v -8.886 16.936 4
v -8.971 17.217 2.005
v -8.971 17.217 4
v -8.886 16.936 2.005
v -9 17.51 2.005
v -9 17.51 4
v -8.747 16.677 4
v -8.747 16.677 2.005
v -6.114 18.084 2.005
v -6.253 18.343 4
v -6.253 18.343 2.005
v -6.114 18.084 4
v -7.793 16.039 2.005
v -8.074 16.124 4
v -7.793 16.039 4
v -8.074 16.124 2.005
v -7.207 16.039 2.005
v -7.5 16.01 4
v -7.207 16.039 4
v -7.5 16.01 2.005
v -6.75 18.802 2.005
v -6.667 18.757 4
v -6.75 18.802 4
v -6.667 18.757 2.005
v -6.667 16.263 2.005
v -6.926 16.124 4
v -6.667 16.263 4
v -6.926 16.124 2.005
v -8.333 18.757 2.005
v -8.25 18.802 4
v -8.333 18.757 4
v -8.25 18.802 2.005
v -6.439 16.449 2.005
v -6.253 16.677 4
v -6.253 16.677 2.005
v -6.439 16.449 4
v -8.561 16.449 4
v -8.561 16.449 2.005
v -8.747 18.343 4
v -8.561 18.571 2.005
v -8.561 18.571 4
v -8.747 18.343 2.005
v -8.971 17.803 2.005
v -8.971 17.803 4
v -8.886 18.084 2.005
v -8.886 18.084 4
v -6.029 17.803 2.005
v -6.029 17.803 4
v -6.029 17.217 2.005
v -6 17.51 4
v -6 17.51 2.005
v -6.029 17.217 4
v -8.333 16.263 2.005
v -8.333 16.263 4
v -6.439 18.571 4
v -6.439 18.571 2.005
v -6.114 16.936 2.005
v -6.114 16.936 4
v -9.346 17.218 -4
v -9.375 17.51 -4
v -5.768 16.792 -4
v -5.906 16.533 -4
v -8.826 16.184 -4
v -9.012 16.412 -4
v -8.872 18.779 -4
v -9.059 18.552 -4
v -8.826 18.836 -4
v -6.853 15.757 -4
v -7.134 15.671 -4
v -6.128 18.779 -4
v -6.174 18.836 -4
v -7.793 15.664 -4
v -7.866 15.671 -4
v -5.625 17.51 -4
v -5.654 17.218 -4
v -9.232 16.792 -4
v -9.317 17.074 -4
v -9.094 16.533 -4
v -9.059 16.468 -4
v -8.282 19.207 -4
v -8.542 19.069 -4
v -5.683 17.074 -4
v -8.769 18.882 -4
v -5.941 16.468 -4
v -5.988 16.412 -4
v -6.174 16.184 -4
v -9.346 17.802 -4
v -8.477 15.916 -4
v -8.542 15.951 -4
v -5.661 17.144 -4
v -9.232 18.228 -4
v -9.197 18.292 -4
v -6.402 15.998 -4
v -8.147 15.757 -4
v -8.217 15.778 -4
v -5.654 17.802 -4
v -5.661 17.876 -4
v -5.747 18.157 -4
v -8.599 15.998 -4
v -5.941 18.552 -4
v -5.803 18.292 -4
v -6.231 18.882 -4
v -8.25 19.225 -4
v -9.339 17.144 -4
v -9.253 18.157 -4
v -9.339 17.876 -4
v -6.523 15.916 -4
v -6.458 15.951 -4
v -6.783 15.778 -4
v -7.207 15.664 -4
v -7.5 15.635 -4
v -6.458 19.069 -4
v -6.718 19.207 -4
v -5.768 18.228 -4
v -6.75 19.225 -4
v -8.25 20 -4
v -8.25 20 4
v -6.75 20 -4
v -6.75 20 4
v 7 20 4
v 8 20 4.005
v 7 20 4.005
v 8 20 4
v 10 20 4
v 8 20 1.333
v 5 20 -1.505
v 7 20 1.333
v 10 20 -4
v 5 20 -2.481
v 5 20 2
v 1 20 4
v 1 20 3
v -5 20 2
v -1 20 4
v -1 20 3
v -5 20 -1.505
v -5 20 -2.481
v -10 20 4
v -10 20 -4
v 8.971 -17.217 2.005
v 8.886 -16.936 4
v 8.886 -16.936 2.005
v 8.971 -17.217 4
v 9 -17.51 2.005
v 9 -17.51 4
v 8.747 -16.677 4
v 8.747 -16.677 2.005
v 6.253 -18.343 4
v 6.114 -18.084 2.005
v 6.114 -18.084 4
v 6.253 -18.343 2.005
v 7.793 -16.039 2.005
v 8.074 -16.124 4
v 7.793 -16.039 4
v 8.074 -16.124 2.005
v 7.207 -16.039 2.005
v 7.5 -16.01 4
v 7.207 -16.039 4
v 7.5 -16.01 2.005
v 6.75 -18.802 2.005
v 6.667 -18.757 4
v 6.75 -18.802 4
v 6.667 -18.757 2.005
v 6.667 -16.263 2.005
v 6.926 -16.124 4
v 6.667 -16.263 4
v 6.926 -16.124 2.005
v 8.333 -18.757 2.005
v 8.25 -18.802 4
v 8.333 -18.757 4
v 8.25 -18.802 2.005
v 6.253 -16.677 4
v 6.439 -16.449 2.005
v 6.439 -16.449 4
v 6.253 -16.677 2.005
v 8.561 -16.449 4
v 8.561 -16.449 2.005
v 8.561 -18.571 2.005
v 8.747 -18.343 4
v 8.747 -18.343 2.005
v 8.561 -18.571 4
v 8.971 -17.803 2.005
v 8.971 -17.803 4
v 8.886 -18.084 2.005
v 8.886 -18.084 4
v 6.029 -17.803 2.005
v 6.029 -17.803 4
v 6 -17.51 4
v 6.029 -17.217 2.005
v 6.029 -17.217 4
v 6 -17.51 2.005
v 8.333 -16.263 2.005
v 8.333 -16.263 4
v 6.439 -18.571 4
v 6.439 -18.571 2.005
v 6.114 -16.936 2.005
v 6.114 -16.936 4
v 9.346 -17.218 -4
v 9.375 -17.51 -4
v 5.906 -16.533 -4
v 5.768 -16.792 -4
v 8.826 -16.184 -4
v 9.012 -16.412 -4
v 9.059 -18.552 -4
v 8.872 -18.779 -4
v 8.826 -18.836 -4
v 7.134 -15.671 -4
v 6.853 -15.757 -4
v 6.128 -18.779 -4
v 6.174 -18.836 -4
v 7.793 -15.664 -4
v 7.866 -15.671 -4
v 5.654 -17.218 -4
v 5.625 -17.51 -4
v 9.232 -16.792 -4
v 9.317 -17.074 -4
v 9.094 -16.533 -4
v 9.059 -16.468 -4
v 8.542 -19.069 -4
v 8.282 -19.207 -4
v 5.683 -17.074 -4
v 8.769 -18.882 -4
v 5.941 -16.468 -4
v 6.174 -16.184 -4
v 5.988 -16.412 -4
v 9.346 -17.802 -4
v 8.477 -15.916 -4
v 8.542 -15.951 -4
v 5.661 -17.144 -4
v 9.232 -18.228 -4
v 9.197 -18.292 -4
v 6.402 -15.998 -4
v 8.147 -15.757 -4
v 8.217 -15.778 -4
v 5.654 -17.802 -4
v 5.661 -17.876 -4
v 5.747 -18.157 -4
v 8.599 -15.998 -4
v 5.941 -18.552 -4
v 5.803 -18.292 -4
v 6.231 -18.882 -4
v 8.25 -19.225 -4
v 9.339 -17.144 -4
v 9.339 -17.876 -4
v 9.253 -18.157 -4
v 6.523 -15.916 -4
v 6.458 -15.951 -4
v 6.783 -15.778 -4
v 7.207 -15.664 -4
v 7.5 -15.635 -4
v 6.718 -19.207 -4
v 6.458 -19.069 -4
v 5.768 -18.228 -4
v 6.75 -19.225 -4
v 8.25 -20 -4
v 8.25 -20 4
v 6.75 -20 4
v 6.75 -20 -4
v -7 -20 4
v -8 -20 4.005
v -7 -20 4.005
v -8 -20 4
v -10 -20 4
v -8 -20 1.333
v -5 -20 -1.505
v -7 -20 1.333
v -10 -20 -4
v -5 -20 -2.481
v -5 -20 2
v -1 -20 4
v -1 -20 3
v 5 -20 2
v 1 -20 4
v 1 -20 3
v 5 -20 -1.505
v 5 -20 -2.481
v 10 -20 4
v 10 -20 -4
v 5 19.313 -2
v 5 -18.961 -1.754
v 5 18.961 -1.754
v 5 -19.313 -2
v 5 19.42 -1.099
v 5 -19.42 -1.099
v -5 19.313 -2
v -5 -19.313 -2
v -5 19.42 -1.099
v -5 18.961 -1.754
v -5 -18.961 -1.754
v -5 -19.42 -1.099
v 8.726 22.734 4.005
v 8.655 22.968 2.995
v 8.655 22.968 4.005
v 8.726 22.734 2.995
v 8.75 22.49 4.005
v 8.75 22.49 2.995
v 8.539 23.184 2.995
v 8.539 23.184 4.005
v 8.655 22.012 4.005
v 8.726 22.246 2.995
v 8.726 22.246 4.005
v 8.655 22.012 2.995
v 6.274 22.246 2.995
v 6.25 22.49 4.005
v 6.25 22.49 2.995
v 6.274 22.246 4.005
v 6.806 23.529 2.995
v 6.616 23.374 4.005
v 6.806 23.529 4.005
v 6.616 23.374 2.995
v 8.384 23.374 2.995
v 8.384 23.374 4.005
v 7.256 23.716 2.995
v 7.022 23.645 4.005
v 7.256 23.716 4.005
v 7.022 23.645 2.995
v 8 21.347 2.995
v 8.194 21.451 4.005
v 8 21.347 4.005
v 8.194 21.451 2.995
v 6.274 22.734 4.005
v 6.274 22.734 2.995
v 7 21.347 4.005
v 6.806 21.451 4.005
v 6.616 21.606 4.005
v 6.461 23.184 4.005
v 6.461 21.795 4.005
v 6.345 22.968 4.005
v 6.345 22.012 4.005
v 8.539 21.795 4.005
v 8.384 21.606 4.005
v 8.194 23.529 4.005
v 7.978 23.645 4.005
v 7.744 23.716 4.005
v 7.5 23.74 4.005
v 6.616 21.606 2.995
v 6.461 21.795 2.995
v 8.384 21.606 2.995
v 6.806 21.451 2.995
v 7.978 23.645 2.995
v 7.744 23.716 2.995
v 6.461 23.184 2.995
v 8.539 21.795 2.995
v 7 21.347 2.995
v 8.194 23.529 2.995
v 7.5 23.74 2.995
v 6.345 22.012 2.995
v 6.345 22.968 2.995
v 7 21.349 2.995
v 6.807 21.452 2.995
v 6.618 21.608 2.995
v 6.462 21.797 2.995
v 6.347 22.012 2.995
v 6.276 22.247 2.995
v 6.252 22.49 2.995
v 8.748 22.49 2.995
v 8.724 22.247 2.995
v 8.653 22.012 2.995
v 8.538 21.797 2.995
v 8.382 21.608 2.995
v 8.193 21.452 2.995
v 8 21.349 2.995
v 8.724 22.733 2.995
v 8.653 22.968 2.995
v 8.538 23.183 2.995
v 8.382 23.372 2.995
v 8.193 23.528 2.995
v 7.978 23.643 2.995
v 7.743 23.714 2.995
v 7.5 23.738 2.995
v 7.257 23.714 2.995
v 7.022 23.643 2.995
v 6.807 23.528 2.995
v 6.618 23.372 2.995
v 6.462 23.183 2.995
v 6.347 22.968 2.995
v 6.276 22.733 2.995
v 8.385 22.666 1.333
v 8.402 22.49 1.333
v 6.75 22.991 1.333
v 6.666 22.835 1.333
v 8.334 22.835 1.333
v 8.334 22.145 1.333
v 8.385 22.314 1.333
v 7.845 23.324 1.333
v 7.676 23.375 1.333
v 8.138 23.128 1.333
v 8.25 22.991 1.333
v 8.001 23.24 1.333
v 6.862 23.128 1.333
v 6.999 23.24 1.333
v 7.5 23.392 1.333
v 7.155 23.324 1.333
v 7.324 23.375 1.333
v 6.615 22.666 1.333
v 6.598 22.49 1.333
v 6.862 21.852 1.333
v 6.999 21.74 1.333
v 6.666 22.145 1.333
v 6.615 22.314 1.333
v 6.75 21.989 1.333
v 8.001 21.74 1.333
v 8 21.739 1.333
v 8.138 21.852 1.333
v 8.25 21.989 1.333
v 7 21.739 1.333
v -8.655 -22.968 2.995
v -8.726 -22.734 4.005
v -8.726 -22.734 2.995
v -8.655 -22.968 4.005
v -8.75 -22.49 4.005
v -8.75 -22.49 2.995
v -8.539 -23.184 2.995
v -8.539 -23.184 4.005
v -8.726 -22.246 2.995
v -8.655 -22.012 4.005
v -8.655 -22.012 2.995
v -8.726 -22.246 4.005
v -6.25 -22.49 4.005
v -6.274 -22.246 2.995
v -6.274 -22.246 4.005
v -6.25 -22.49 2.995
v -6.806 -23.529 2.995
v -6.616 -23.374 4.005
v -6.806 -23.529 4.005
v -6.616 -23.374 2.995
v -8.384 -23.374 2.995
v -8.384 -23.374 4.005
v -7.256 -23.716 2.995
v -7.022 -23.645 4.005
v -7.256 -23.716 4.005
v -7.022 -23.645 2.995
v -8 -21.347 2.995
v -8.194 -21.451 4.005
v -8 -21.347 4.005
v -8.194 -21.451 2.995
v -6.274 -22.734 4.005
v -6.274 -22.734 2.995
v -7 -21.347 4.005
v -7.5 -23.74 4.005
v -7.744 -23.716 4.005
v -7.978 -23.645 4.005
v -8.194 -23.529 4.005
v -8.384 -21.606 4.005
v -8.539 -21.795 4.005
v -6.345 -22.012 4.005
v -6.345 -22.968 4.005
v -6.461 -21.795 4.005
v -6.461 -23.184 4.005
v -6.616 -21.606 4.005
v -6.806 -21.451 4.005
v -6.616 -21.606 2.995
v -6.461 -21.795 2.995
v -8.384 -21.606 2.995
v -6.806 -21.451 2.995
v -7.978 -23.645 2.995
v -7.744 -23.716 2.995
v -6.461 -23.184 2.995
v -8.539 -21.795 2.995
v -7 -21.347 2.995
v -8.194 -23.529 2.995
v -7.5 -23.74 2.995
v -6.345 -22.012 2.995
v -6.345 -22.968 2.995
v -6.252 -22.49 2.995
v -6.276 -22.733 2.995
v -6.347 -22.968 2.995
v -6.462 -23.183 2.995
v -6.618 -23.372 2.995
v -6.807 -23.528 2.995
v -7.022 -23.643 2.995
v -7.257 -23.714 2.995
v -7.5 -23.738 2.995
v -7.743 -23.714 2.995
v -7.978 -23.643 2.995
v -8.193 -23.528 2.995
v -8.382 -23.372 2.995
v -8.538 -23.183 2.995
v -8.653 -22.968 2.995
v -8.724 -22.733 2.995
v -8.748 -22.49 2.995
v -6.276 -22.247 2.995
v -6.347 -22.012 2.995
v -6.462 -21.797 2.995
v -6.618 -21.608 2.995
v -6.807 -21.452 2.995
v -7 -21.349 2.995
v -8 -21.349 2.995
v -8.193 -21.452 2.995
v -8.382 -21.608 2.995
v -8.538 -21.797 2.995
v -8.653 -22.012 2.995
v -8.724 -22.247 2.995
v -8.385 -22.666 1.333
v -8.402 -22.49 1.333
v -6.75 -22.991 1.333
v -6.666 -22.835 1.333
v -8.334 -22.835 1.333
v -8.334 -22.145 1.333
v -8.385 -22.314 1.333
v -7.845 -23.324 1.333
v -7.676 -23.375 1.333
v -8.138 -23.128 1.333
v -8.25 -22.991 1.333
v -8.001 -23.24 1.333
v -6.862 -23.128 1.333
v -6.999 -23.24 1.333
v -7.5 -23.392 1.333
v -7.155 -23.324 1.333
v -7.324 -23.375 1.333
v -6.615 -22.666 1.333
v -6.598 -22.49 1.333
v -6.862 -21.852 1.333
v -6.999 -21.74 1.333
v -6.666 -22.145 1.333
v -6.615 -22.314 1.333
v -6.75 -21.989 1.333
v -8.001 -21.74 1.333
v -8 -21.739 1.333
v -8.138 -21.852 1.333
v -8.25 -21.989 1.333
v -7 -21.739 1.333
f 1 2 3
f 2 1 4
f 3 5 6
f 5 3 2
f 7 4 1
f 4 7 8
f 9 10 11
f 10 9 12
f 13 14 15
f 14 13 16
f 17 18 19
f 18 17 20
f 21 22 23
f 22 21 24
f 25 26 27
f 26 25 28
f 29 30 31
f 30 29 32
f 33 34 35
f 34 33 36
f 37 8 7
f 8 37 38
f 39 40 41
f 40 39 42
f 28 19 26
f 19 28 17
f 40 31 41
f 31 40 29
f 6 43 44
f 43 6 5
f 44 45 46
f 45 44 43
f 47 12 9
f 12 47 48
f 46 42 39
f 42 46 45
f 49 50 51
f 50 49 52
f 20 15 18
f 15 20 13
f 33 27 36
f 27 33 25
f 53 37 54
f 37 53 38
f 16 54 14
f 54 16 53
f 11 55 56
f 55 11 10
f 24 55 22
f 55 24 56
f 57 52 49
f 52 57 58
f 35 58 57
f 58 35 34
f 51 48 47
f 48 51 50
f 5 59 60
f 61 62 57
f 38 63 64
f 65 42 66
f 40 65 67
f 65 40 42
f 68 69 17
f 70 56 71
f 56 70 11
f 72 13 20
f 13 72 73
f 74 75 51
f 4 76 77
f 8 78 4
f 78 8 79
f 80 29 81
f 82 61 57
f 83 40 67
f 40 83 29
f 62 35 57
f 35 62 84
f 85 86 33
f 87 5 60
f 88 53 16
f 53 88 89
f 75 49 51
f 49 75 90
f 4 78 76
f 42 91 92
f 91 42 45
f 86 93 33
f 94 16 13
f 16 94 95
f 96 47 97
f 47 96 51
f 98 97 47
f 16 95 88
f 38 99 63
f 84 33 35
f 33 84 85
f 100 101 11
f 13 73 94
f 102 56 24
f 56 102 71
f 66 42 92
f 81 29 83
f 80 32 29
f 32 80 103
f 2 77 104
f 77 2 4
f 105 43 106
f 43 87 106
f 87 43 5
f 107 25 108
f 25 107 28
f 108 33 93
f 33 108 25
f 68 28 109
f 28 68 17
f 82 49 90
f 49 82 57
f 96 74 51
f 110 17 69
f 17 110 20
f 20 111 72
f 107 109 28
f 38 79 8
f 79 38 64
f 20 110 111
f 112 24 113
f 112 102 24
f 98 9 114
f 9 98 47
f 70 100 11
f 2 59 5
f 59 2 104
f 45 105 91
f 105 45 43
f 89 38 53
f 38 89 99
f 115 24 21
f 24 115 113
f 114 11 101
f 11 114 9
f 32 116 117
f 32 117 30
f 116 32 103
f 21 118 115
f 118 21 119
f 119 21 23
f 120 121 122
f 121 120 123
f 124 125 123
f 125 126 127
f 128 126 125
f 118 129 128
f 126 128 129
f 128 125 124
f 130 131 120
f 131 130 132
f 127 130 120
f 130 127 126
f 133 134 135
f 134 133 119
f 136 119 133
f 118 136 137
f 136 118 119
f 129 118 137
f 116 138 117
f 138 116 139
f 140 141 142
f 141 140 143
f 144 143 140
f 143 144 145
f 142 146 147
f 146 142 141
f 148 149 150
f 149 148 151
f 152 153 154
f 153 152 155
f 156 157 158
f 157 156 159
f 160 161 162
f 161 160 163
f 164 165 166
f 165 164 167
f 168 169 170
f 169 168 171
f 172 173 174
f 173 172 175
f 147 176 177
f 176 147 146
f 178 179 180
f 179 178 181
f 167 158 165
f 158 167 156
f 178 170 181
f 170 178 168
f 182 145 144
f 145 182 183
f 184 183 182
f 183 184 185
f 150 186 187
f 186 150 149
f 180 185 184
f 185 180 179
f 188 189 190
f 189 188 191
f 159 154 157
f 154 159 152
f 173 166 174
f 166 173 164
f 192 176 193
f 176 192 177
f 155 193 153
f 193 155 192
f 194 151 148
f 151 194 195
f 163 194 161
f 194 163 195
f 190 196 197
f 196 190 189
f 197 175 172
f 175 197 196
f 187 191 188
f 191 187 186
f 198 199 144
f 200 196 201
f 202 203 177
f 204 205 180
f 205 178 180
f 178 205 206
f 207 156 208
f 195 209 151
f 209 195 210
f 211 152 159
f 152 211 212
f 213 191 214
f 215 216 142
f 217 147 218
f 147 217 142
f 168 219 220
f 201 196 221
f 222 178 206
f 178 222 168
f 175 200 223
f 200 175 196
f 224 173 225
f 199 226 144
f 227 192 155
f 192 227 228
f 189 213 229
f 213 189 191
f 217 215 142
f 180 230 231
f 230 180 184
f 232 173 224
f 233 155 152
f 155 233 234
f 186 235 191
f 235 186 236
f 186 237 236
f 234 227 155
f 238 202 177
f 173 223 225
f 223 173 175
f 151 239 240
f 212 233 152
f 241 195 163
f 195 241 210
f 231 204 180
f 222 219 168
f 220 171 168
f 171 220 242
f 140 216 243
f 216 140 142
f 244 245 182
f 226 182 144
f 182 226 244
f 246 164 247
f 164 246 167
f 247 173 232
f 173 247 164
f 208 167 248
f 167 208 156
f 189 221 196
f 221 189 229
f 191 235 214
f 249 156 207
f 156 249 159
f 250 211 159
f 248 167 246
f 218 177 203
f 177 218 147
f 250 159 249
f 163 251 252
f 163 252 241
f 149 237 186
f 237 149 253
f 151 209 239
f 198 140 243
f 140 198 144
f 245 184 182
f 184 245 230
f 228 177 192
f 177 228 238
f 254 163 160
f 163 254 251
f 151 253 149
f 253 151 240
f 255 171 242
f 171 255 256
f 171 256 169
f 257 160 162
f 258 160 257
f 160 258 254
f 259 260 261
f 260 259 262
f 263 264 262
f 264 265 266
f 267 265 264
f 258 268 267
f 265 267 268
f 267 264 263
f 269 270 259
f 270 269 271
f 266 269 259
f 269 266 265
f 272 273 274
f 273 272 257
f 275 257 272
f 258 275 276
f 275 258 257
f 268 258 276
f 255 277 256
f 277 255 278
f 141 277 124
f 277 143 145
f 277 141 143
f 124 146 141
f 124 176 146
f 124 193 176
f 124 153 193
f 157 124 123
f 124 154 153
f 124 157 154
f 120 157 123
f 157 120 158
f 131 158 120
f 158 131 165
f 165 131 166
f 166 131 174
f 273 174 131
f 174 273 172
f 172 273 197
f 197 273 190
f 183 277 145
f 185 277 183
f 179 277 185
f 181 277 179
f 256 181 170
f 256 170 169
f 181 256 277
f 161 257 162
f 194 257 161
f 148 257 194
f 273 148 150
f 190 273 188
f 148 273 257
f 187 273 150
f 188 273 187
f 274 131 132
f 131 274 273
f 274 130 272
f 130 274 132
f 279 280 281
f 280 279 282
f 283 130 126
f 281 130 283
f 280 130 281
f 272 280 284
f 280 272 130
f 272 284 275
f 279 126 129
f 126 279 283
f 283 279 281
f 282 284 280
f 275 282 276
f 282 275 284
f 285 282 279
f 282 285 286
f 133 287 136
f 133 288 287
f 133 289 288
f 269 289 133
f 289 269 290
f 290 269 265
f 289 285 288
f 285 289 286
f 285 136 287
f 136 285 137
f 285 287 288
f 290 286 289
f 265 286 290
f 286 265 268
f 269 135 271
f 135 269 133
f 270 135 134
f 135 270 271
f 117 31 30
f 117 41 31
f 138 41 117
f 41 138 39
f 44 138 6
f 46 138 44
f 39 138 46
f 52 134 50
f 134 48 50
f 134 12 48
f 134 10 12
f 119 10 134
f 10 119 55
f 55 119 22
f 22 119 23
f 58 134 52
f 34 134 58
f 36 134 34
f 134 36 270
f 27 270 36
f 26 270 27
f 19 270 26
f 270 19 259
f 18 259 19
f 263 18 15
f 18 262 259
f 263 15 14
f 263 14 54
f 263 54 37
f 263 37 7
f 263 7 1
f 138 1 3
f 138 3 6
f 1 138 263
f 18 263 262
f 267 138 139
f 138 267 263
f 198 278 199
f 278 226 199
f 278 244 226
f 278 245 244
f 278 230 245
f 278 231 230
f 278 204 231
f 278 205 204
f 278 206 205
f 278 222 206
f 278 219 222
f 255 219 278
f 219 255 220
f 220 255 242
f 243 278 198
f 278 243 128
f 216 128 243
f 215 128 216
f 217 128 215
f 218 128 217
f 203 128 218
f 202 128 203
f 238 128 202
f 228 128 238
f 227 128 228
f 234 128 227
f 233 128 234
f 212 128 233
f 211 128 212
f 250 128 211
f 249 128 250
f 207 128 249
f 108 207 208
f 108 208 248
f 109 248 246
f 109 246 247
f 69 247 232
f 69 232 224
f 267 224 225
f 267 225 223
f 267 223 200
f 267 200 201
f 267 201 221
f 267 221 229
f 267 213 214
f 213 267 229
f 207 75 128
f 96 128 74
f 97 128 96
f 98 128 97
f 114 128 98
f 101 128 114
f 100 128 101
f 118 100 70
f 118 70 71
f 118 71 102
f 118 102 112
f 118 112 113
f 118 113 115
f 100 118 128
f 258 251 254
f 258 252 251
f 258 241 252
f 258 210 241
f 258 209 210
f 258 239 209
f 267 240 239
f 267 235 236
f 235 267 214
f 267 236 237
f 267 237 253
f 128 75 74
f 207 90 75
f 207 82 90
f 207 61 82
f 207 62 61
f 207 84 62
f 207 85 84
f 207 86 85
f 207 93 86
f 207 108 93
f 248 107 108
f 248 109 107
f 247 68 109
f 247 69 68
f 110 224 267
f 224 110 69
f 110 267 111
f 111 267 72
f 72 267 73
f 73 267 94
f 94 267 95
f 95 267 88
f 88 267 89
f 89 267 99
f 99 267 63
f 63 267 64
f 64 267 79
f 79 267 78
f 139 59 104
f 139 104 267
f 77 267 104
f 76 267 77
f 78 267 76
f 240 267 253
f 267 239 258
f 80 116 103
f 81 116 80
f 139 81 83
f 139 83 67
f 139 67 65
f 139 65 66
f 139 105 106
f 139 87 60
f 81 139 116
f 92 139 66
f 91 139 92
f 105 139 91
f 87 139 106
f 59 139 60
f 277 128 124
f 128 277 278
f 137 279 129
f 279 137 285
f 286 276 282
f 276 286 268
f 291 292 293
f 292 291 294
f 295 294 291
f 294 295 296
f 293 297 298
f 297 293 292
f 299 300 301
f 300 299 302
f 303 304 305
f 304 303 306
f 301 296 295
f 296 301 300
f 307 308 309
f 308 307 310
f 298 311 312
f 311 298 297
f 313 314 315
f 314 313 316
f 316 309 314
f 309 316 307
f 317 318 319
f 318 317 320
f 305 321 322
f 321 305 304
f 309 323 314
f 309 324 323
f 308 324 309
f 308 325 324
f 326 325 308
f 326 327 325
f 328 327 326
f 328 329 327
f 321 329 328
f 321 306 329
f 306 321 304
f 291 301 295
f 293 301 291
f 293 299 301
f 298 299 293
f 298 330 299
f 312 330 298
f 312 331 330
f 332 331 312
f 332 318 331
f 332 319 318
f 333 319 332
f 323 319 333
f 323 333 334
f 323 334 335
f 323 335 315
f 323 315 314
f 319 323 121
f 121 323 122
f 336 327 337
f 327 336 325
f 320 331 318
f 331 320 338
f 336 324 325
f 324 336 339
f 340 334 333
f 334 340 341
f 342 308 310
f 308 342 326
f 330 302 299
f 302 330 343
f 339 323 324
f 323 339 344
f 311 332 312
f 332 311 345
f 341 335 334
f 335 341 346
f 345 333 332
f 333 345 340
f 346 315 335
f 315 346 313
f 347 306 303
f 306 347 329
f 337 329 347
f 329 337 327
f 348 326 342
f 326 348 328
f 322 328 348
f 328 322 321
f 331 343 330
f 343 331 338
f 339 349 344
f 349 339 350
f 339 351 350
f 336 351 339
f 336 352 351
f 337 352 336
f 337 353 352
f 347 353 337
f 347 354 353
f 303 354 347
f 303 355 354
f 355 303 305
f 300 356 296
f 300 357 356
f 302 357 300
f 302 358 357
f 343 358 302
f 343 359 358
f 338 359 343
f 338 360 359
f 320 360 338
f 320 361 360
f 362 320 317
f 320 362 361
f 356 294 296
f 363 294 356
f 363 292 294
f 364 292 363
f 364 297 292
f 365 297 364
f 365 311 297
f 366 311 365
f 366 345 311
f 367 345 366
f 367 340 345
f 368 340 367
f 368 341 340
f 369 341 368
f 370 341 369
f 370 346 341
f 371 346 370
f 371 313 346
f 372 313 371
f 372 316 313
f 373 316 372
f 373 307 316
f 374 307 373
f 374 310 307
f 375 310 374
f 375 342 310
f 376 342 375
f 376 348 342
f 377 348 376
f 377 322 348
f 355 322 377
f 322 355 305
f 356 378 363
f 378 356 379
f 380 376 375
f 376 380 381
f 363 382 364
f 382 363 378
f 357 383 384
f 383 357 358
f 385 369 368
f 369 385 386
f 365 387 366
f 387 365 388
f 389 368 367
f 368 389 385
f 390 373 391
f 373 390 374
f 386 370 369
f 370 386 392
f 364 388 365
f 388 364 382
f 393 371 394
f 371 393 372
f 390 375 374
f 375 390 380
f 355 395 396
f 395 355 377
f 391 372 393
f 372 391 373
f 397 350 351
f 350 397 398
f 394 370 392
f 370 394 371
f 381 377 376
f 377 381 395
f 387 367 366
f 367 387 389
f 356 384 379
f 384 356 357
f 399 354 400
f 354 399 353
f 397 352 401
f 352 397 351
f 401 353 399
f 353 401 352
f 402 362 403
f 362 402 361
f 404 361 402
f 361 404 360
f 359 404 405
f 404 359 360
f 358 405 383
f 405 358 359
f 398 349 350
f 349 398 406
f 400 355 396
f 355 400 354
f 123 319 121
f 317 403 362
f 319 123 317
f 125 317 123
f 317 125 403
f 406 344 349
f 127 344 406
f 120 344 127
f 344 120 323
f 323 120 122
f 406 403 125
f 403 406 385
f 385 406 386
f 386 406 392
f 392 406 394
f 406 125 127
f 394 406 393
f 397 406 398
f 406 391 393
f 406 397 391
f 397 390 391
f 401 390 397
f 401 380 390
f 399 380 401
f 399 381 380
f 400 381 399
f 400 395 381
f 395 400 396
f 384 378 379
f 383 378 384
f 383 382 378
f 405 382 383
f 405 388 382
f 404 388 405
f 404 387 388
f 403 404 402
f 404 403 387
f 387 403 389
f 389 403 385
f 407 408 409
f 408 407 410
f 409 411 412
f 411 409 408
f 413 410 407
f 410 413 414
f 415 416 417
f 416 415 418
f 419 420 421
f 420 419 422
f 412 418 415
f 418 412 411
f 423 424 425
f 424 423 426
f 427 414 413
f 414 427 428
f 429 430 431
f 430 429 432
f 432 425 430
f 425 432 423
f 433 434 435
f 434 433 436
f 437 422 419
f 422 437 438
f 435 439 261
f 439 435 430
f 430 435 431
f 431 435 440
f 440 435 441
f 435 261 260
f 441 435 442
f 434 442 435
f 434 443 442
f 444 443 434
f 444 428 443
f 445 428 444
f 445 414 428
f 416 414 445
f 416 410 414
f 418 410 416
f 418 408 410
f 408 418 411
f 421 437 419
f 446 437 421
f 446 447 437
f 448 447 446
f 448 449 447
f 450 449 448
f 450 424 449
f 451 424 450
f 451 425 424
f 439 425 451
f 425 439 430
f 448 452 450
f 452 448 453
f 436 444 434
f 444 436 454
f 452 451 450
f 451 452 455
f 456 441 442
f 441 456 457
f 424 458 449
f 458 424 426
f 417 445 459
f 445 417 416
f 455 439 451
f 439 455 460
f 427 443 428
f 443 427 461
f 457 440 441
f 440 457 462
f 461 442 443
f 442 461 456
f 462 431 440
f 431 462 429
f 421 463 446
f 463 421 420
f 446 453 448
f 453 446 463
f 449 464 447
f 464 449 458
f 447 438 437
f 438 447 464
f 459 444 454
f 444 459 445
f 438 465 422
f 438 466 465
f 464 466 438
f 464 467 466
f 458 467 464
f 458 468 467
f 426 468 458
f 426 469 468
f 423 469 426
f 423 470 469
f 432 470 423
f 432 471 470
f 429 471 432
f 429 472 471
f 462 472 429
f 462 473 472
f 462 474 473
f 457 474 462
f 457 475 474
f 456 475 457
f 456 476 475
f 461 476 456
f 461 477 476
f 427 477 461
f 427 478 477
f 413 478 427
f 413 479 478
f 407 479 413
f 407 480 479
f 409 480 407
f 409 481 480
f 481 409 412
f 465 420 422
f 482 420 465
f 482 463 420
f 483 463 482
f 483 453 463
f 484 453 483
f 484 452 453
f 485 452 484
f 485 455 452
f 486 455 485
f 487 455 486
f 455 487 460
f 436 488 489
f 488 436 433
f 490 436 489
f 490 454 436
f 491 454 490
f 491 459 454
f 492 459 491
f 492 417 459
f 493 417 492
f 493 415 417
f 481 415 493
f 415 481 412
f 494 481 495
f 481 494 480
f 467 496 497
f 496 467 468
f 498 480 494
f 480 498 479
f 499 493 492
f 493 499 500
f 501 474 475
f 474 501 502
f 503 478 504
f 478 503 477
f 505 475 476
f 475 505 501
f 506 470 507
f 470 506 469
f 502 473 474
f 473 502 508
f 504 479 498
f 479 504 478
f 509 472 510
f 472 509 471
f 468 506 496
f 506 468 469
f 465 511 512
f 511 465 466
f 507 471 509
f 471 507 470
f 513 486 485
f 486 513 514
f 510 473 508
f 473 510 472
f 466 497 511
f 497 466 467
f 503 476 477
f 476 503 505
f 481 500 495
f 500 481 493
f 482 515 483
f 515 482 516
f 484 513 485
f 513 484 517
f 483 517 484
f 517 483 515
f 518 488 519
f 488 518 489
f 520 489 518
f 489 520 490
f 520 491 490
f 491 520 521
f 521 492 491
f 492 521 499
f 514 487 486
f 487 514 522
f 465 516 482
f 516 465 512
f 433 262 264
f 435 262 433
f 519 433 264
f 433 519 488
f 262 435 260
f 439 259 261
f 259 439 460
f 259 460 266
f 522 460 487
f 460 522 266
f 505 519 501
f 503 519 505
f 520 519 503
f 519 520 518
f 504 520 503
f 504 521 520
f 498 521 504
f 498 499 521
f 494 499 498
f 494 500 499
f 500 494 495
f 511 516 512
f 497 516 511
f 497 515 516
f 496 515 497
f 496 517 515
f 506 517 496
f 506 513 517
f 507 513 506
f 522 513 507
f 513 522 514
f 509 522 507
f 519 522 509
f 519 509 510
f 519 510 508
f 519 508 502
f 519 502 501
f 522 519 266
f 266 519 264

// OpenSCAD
/*

  ttt_straight_1.scad

  (c) olikraus@gmail.com

  This work is licensed under the Creative Commons Attribution-NonCommercial-ShareAlike 4.0 International License. 
  To view a copy of this license, visit http://creativecommons.org/licenses/by-nc-sa/4.0/.

  straight one grid tile train tube track
*/
include <train_tube_track.scad>;

straight_track_double_plug(grid, is_base = false);

//base_grid(2*grid);
